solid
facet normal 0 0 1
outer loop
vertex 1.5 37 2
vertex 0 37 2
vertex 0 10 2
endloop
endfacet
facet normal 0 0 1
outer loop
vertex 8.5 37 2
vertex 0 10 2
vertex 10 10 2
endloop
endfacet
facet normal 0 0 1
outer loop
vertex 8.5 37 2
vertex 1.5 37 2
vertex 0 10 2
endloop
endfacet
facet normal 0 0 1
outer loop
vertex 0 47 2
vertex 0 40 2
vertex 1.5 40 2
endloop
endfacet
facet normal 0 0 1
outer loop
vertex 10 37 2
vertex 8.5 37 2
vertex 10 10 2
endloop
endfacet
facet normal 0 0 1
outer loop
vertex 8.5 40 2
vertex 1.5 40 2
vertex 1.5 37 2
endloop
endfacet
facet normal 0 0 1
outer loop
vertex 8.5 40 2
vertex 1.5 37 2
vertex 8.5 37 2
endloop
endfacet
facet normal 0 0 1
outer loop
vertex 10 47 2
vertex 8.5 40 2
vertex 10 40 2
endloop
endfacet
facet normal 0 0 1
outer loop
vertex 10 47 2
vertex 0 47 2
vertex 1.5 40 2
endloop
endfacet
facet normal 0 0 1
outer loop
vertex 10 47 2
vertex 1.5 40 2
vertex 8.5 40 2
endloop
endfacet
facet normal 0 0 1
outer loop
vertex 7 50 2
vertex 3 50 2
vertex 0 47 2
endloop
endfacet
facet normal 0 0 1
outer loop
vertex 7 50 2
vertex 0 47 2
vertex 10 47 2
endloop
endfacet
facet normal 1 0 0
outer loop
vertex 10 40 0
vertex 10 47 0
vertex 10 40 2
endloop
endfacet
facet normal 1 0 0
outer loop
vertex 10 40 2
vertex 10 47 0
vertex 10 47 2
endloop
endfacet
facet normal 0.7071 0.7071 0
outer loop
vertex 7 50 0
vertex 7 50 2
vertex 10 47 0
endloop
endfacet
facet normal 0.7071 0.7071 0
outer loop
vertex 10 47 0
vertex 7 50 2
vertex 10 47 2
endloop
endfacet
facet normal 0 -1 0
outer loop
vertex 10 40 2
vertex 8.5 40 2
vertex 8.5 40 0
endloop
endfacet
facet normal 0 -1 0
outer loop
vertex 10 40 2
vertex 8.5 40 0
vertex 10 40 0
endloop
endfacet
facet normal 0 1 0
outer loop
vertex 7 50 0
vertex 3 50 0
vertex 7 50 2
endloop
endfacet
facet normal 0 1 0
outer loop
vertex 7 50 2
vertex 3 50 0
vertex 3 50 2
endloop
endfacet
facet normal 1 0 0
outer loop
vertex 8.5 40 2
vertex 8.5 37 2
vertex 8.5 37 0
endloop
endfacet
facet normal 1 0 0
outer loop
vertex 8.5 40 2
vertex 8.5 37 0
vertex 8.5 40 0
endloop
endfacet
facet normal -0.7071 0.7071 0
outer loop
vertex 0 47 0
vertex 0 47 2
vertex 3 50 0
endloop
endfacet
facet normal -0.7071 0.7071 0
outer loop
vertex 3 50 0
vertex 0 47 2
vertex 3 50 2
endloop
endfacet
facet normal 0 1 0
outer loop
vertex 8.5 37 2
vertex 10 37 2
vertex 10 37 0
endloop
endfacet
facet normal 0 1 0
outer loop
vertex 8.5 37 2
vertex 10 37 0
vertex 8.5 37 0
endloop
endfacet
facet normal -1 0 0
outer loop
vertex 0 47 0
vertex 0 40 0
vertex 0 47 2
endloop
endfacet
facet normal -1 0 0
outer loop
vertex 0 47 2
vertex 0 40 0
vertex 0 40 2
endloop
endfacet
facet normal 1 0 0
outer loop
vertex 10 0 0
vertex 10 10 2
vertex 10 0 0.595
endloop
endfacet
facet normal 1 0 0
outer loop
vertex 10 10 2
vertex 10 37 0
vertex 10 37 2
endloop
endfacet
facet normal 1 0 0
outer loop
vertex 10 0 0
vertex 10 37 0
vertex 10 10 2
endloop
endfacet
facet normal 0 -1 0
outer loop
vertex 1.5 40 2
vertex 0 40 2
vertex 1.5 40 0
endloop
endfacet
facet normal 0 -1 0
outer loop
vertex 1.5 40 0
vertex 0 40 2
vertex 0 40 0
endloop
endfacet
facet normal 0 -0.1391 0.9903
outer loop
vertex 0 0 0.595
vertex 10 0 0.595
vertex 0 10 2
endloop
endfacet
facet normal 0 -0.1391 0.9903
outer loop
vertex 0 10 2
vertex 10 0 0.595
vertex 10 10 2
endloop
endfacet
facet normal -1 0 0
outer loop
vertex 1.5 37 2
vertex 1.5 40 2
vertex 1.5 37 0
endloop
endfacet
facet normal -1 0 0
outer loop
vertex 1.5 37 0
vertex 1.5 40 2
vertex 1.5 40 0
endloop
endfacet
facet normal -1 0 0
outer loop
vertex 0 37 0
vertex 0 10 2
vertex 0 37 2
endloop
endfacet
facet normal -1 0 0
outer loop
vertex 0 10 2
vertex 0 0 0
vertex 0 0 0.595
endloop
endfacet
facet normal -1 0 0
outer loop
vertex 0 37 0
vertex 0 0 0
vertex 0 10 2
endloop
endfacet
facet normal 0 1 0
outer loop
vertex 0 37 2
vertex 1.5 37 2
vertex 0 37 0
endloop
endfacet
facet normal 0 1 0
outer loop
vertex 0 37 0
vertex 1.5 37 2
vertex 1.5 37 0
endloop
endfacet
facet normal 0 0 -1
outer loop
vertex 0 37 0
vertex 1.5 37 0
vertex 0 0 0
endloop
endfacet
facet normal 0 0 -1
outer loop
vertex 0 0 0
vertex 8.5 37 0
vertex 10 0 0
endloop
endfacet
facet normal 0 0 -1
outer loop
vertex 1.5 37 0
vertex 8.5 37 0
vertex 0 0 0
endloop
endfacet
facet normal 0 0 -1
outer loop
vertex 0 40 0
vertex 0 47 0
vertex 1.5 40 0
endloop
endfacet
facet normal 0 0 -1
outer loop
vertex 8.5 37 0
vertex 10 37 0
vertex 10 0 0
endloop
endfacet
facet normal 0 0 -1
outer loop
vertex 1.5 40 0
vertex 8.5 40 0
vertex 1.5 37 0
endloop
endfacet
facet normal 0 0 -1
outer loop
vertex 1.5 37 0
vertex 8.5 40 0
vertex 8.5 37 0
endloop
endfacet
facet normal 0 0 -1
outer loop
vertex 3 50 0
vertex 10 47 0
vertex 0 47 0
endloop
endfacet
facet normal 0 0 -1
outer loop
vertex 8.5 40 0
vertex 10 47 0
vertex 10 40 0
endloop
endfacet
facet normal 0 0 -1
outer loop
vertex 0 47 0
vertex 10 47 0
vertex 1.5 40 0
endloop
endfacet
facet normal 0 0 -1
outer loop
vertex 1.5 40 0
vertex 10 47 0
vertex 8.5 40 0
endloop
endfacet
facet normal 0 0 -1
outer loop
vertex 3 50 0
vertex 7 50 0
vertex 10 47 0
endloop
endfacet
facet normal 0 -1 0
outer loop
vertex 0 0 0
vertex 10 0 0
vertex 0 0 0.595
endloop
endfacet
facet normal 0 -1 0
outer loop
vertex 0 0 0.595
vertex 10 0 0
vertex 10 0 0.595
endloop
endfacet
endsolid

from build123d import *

# Parameters (mm, degrees)
SKETCH_W        = 10
SKETCH_H        = 50
PAD_DEPTH       = 2
SKETCH001_W     = 1.5
SKETCH001_H     = 3
POCKET_DEPTH    = 3
CHAMFER_ANGLE   = 8
CHAMFER_SIZE    = 10
CHAMFER001_SIZE = 3


with BuildPart() as part:
    # Sketch → Pad (new body)
    with BuildSketch(Plane.XY):
        with Locations((5, 25)):
            Rectangle(SKETCH_W, SKETCH_H)
    extrude(amount=PAD_DEPTH)

    # Sketch001 (on Face6 of Pad) → Pocket (cut)
    with BuildSketch(Plane.XY.offset(2)):
        with Locations((9.25, 38.5)):
            Rectangle(SKETCH001_W, SKETCH001_H)
        with Locations((0.75, 38.5)):
            Rectangle(SKETCH001_W, SKETCH001_H)
    extrude(amount=-POCKET_DEPTH, mode=Mode.SUBTRACT)

    # Chamfer
    chamfer_edges = [part.edges().sort_by_distance(p)[0] for p in [
        (5, 0, 2),
    ]]
    chamfer_side = part.faces().sort_by_distance((5, 24.752546, 2))[0]
    chamfer(chamfer_edges, length=CHAMFER_SIZE, angle=CHAMFER_ANGLE, reference=chamfer_side)

    # Chamfer001
    chamfer001_edges = [part.edges().sort_by_distance(p)[0] for p in [
        (0, 50, 1),
        (10, 50, 1),
    ]]
    chamfer(chamfer001_edges, length=CHAMFER001_SIZE)


solid = part.part
